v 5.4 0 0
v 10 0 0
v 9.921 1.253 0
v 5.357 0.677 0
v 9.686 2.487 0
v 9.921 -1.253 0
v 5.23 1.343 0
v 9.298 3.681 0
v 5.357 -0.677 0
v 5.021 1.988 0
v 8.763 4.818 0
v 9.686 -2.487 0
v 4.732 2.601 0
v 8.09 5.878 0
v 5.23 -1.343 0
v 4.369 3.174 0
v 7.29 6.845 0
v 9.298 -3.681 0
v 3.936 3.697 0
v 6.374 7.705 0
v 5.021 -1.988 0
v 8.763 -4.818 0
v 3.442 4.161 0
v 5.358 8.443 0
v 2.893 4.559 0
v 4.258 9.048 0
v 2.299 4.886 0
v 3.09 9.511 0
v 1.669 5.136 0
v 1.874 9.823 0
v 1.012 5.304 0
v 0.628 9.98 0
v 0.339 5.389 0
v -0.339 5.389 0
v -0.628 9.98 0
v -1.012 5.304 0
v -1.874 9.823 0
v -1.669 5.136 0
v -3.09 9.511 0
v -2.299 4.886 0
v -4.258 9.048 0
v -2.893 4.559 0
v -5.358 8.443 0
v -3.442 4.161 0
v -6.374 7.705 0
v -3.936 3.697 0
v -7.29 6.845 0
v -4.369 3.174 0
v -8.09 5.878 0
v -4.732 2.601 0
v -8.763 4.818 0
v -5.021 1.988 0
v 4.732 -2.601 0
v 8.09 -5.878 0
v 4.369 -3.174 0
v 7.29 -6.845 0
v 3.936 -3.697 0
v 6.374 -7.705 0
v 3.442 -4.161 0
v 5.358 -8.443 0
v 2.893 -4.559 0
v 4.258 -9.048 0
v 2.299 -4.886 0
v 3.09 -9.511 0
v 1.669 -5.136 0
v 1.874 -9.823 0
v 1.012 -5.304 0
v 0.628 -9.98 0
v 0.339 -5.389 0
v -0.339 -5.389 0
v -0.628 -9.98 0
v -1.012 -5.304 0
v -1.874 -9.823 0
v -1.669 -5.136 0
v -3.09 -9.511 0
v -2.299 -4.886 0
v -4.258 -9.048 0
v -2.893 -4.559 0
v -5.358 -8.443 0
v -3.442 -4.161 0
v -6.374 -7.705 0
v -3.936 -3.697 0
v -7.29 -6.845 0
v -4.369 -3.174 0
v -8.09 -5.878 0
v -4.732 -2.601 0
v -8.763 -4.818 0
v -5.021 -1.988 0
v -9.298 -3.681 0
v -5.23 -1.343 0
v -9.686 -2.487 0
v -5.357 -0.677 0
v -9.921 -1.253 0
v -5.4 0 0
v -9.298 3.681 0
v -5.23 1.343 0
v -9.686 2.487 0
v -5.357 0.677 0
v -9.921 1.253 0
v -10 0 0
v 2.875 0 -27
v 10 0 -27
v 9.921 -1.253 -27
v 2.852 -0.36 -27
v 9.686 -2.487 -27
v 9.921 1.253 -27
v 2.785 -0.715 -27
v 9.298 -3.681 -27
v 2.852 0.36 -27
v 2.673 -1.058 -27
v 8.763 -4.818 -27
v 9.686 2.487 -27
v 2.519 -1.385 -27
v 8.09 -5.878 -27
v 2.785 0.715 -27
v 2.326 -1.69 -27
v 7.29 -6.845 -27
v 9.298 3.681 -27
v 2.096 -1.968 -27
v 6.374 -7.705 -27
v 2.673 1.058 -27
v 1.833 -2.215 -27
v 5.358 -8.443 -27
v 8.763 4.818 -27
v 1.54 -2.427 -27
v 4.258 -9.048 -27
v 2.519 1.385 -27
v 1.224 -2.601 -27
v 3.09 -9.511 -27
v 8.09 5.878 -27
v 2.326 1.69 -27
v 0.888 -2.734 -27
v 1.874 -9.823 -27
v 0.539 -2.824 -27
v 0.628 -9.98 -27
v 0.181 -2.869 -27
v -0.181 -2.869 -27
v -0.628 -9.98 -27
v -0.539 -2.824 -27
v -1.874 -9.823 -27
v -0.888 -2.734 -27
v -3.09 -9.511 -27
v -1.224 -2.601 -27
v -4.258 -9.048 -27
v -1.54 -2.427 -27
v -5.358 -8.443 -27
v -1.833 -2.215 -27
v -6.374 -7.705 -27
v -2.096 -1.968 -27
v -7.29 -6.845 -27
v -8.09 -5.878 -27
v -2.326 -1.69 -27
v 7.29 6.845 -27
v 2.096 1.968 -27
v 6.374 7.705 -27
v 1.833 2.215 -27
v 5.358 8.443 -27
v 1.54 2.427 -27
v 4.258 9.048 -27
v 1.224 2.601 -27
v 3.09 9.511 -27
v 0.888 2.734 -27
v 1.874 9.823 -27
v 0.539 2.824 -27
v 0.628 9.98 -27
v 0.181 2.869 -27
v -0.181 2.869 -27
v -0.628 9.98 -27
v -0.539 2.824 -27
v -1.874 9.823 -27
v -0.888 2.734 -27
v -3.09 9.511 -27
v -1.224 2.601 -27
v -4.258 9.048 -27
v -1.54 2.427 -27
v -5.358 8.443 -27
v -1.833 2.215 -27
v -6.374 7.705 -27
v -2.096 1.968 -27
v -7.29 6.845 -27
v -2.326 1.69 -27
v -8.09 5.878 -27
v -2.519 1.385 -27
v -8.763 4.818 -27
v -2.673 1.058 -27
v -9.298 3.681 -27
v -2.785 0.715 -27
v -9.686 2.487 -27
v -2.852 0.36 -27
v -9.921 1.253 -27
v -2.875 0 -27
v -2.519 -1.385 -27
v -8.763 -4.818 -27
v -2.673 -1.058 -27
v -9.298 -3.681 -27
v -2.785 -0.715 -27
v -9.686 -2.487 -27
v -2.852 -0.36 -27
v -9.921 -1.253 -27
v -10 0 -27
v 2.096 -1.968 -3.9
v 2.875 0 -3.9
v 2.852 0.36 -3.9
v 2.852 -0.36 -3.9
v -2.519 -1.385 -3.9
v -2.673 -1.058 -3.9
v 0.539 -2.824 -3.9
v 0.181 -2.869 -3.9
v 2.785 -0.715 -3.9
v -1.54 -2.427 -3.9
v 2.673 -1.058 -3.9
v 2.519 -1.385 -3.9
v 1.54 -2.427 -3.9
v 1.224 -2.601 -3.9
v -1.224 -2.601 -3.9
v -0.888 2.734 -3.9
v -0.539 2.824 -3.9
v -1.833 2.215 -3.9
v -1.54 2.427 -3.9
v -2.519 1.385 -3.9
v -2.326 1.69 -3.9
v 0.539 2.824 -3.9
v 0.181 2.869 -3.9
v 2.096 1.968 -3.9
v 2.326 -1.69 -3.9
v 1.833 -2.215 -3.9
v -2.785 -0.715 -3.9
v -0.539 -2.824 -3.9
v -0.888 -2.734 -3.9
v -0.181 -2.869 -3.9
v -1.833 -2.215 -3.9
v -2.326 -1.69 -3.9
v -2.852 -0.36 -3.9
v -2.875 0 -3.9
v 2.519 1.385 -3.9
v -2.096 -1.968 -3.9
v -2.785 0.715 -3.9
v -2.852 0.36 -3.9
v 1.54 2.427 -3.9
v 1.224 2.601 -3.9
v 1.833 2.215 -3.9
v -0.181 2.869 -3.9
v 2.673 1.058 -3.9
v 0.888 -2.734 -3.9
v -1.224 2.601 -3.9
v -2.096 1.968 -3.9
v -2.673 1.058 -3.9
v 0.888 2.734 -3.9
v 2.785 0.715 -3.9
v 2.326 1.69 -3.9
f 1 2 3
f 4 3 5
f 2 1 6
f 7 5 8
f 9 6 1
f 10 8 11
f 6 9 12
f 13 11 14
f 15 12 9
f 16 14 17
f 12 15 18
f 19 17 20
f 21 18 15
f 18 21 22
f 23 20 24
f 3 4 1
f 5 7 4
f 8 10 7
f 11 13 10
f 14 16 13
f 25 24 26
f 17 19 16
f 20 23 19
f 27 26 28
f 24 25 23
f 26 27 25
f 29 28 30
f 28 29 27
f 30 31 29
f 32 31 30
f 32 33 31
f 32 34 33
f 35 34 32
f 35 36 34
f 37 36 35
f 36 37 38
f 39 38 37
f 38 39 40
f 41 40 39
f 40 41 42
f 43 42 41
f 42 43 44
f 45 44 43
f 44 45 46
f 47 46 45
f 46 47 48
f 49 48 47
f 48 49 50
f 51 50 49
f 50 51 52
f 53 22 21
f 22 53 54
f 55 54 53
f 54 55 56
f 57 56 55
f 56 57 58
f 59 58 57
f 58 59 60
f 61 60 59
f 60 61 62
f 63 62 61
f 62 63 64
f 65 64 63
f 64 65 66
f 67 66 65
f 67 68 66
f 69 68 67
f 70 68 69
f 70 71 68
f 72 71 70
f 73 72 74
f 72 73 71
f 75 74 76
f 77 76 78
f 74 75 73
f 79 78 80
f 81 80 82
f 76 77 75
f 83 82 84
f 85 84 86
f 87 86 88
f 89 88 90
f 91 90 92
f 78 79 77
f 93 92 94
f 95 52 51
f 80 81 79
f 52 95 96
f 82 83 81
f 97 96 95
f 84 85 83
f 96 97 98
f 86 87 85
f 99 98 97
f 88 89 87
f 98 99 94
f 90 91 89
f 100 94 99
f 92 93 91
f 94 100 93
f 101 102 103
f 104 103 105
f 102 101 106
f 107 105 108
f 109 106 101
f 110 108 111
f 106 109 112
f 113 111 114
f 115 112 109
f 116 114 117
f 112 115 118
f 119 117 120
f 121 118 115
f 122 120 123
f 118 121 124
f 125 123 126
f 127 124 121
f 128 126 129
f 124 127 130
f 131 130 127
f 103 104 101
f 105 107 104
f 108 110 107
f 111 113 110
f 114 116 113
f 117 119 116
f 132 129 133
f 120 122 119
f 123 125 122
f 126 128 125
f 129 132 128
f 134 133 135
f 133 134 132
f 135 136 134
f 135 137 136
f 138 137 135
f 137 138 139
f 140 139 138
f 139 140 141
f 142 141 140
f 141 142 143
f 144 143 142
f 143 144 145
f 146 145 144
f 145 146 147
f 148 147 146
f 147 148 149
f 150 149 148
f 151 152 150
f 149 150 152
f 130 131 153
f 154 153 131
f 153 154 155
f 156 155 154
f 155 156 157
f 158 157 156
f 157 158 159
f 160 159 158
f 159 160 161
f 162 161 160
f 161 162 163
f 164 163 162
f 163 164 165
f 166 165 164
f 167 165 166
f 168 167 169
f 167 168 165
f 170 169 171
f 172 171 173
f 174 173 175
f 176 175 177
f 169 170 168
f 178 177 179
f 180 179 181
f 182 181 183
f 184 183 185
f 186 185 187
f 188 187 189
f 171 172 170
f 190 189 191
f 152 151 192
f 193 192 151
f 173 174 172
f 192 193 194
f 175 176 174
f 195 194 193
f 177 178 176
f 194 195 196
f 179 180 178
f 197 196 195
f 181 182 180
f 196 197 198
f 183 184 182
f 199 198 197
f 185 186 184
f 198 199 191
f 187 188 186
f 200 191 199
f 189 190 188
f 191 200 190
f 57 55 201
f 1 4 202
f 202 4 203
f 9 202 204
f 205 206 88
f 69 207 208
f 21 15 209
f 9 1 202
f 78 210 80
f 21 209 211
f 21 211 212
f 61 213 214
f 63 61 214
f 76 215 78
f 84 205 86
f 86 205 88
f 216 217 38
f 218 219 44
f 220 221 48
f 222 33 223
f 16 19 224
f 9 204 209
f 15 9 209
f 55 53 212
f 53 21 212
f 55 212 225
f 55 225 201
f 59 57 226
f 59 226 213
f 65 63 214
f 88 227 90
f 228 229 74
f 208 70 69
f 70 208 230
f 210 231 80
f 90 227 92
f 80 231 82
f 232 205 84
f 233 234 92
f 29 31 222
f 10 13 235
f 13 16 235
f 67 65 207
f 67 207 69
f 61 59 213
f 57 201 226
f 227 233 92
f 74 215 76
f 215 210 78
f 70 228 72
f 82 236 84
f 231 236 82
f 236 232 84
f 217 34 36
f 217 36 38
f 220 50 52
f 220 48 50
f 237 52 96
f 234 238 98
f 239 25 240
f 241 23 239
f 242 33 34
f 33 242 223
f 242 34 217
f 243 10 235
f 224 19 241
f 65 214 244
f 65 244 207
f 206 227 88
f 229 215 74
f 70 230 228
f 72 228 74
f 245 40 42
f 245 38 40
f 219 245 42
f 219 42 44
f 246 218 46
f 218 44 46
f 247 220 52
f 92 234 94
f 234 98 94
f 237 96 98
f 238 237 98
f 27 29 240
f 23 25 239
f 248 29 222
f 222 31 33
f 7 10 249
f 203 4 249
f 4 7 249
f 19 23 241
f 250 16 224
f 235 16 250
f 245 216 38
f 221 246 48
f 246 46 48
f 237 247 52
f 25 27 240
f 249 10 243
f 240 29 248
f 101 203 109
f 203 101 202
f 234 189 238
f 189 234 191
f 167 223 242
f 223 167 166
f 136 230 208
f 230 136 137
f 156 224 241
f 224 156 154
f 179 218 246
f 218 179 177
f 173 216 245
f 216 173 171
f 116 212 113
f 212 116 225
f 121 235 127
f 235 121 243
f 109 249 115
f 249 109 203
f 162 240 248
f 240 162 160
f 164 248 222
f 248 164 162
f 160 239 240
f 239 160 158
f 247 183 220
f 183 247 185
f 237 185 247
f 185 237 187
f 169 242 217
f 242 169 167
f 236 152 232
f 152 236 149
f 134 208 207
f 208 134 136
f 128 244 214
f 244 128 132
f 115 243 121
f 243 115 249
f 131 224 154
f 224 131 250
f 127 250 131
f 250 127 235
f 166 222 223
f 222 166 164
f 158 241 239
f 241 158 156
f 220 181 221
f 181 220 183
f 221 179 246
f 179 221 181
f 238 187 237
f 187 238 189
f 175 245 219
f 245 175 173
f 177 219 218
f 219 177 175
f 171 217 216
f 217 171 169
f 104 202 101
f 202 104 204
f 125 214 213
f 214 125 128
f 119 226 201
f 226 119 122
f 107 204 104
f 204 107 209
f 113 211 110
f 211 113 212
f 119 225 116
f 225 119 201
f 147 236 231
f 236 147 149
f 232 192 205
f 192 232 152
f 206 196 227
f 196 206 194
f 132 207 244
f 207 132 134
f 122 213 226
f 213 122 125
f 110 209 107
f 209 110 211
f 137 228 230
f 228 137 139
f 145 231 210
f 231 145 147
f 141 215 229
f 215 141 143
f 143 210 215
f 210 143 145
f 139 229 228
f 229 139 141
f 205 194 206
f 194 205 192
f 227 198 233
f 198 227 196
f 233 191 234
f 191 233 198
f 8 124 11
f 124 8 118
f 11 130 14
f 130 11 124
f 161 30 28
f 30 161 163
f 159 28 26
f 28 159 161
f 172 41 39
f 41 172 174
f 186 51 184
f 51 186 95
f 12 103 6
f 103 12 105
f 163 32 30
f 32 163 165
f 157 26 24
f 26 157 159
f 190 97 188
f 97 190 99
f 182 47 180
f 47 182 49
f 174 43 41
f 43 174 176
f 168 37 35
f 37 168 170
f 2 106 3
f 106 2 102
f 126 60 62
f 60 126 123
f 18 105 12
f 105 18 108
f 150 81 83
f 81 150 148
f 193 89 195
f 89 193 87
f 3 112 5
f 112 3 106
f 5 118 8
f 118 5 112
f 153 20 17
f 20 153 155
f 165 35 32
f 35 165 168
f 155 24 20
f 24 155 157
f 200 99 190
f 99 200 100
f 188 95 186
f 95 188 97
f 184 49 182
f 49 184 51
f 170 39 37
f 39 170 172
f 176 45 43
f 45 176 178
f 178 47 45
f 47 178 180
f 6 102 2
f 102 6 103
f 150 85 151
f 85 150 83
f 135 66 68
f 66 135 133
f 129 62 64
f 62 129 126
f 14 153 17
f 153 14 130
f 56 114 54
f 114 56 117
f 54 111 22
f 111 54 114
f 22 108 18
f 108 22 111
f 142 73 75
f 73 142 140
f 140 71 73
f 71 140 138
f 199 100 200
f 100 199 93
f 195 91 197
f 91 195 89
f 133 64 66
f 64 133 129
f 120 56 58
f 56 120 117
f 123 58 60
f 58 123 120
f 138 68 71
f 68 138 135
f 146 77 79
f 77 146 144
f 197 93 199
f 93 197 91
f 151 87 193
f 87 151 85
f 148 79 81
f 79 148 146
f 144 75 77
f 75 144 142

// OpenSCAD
$fn = 50;


difference() {
	union() {
		translate(v = [0, 0, -27.0000000000]) {
			cylinder(h = 27, r = 10.0000000000);
		}
		cylinder(h = 0, r = 16.0000000000);
	}
	union() {
		translate(v = [0, 0, 0]) {
			rotate(a = [0, 0, 0]) {
				difference() {
					union() {
						#translate(v = [0, 0, -27.0000000000]) {
							cylinder(h = 27, r = 2.6000000000);
						}
						#translate(v = [0, 0, -3.9000000000]) {
							cylinder(h = 3.9000000000, r = 10.0000000000, r1 = 2.8750000000, r2 = 5.4000000000);
						}
						#translate(v = [0, 0, -27.0000000000]) {
							cylinder(h = 27, r = 2.8750000000);
						}
						#translate(v = [0, 0, -27.0000000000]) {
							cylinder(h = 27, r = 2.6000000000);
						}
					}
					union();
				}
			}
		}
	}
}
